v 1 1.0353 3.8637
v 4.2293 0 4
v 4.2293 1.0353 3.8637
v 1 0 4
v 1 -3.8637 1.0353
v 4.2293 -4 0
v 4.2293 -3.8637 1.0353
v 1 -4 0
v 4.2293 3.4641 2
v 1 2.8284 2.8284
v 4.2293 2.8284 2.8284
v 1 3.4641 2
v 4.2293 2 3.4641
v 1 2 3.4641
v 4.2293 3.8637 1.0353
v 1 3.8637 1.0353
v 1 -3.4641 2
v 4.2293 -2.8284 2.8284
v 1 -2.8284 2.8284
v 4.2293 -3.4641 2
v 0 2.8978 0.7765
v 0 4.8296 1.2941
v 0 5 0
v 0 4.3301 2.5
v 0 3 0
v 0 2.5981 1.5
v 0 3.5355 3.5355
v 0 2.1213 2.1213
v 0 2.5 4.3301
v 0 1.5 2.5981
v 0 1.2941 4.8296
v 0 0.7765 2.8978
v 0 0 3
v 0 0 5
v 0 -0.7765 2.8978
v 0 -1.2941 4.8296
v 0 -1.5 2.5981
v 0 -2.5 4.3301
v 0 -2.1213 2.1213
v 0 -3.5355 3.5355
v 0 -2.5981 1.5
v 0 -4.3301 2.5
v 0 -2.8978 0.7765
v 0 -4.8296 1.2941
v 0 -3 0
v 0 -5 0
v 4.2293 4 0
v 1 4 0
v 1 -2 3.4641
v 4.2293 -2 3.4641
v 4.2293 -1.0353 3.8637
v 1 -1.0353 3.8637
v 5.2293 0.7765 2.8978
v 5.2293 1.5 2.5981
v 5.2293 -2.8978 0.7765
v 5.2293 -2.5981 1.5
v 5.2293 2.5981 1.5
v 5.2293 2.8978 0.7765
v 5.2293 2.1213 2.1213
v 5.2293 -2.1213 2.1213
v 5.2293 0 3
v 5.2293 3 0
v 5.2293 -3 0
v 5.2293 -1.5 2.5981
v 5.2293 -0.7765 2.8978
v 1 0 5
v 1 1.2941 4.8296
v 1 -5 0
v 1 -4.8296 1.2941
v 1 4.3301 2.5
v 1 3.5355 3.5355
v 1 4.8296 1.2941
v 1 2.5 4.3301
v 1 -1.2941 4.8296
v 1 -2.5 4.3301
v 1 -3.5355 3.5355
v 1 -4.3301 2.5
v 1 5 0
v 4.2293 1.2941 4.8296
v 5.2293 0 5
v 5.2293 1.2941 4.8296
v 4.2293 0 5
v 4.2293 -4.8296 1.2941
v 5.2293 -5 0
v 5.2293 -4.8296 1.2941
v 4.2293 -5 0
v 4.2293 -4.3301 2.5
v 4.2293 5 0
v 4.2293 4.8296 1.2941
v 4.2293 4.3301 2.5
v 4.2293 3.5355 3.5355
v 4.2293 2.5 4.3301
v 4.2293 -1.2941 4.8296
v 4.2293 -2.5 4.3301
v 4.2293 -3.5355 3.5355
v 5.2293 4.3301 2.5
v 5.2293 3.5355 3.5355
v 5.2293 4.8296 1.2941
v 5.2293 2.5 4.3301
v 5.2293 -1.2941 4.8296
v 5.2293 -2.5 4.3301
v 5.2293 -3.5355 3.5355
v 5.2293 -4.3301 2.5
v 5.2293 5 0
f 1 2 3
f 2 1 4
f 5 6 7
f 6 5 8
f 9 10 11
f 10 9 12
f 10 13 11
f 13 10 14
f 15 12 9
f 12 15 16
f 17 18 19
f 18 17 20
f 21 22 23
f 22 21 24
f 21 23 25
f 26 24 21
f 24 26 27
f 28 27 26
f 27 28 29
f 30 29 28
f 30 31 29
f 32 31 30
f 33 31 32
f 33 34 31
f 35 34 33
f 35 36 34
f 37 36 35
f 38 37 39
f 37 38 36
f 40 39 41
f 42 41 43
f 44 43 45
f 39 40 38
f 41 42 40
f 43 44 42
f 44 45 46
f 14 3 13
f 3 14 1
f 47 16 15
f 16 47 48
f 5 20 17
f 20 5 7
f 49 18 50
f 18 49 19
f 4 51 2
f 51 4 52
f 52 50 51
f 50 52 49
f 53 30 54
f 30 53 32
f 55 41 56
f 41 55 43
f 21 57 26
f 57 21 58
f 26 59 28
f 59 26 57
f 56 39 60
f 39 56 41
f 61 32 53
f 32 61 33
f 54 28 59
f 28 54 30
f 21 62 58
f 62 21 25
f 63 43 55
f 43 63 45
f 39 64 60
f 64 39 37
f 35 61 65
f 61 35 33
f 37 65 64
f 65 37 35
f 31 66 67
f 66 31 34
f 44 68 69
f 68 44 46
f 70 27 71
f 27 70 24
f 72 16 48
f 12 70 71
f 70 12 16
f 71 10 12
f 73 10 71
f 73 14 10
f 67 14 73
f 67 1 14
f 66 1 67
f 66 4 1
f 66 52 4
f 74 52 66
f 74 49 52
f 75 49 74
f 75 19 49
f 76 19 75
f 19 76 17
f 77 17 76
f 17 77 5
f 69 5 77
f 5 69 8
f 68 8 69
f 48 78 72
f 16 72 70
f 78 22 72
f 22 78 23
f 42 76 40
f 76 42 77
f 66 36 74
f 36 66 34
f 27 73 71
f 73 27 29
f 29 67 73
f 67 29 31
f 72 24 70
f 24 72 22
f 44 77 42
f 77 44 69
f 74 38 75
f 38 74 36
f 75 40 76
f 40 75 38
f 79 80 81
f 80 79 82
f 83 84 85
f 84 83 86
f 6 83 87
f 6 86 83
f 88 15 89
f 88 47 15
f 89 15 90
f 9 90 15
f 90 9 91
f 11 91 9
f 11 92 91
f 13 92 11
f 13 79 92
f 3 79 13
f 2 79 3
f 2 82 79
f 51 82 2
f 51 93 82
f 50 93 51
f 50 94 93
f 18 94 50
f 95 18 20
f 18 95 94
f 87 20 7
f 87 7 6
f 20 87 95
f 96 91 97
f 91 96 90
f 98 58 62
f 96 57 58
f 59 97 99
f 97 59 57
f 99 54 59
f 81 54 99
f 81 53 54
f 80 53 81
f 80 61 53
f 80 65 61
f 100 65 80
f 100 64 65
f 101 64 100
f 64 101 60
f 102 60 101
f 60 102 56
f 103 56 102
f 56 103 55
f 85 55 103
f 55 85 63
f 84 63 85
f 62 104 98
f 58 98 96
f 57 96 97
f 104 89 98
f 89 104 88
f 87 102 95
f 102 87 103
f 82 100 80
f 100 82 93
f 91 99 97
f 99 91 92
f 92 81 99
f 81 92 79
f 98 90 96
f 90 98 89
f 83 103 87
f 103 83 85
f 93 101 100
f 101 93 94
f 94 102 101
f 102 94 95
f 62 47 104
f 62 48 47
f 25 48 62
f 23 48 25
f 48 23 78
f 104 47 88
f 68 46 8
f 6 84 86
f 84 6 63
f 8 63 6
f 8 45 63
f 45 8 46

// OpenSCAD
// file: ../build_environments.scad
// build_environments.scad: modules to build level sections
//

module pool(diameter=10.0, wall_height=2.0, step_width=3.0, connections=[])
{
    difference() {
        union() {
        difference() {
            cylinder(h=0.5,r1=diameter+step_width,r2=diameter+step_width,$fn=48);
            translate([0,0,-0.1])
                cylinder(h=0.7,r1=diameter,r2=diameter,$fn=48);
        }
        difference() {
            cylinder(h=wall_height,r1=diameter+step_width+1.0,r2=diameter+step_width+1.0,$fn=48);
            translate([0,0,-0.1])
                cylinder(h=wall_height+0.2,r1=diameter+step_width,r2=diameter+step_width,$fn=48);
        }
        }
    
        for (c = connections)
        {
            rotate([0,90,0]) {
                angle = atan2(c[1],c[0]);
                rotate([-angle,0,0]) {
                    cylinder(h=diameter+5.0,r1=c[2],r2=c[2],$fn=48);
                }
            }
        }
    }
}

module straight(length=10.0, width=2.0, dy1=0.0, dy2=0.0, dz=0.0)
{
    dims = [0, 0, 0, 0, 0, (dz/length)];
    matrix = [
        [ 1, dims[0], dims[1], 0 ],
        [ dims[2], 1, dims[4], 0 ],
        [ dims[5], dims[3], 1, 0 ],
        [ 0, 0, 0, 1 ]
    ];
    multmatrix(matrix)
    difference() {
        translate([dy1,0,0])
        union() {
            rotate([0,90,0]) {
                difference() {
                    cylinder(h=(length-dy1-dy2),r1=width+1.0,r2=width+1.0,$fn=24);
                    translate([0,0,-0.1])
                        cylinder(h=(length-dy1-dy2+0.2),r1=width,r2=width,$fn=24);
                }
                difference() {
                    cylinder(h=1.0,r1=width+2.0,r2=width+2.0,$fn=24);
                    translate([0,0,-0.1])
                        cylinder(h=1.2,r1=width,r2=width,$fn=24);
                }
                translate([0,0,(length-dy1-dy2)-1.0]) {
                    difference() {
                        cylinder(h=1.0,r1=width+2.0,r2=width+2.0,$fn=24);
                        translate([0,0,-0.1])
                            cylinder(h=1.2,r1=width,r2=width,$fn=24);
                    }
                }
            }
        }
        translate([0,0,-(2*width+4.0)/2])
            cube([3*length,3*length,2*width+4.0],center=true);
    }
}

module curve(p0=[0,0], center=[0,0], dir=1, angle=0.0, width=2.0)
{
    radius = sqrt((p0[0]-center[0])*(p0[0]-center[0]) + (p0[1]-center[1])*(p0[1]-center[1]));
    if (dir == 0) {
        difference() {
            rotate([0,0,-90])
            difference() {
                rotate_extrude(angle = angle, convexity = 10, $fn=32)
                    translate([radius, 0, 0])
                        circle(r = width+1.0,$fn=24);
                rotate([0,0,-1.0])
                    rotate_extrude(angle = angle+2.0, convexity = 10, $fn=32)
                        translate([radius, 0, 0])
                            circle(r = width,$fn=24);
            }
            translate([0,0,-(2*width+4.0)/2])
                cube([5*radius,5*radius,2*width+4.0],center=true);
        }
    }
    else {
        difference() {
            rotate([0,0,90])
            difference() {
                rotate_extrude(angle = -angle, convexity = 10, $fn=32)
                    translate([radius, 0, 0])
                        circle(r = width+1.0,$fn=24);
                rotate([0,0,1.0])
                    rotate_extrude(angle = -angle-2.0, convexity = 10, $fn=32)
                        translate([radius, 0, 0])
                            circle(r = width,$fn=24);
            }
            translate([0,0,-(2*width+4.0)/2])
                cube([5*radius,5*radius,2*width+4.0],center=true);
        }
    }

}

// test pool
//pool(diameter=12.0000, wall_height=3.0000, step_width=3.0000, connections=[[0.0000,-26.0000,2.0000], [23.6074,0.0000,2.0000]]);

// test straight, slope
//straight(length=26.0000, width=2.0000, dy1=11.8322, dy2=6.7082, dz=0.0000);
//straight(length=29.1549, width=12.0000, dy1=0.0000, dy2=0.0000, dz=-15.0000);

// test curve
//curve(p0=[23.6074, 0.0000], center=[23.6074, 5.0000], dir=0, angle=60.1011, width=2.0000);
//curve(p0=[33.6426, 12.4219], center=[37.9771, 9.9295], dir=1, angle=120.4627, width=2.0000);
// main file
use <../build_environments.scad>;
straight(length=14.7687, width=3.0000, dy1=0.0000, dy2=9.5394, dz=0.0000);
